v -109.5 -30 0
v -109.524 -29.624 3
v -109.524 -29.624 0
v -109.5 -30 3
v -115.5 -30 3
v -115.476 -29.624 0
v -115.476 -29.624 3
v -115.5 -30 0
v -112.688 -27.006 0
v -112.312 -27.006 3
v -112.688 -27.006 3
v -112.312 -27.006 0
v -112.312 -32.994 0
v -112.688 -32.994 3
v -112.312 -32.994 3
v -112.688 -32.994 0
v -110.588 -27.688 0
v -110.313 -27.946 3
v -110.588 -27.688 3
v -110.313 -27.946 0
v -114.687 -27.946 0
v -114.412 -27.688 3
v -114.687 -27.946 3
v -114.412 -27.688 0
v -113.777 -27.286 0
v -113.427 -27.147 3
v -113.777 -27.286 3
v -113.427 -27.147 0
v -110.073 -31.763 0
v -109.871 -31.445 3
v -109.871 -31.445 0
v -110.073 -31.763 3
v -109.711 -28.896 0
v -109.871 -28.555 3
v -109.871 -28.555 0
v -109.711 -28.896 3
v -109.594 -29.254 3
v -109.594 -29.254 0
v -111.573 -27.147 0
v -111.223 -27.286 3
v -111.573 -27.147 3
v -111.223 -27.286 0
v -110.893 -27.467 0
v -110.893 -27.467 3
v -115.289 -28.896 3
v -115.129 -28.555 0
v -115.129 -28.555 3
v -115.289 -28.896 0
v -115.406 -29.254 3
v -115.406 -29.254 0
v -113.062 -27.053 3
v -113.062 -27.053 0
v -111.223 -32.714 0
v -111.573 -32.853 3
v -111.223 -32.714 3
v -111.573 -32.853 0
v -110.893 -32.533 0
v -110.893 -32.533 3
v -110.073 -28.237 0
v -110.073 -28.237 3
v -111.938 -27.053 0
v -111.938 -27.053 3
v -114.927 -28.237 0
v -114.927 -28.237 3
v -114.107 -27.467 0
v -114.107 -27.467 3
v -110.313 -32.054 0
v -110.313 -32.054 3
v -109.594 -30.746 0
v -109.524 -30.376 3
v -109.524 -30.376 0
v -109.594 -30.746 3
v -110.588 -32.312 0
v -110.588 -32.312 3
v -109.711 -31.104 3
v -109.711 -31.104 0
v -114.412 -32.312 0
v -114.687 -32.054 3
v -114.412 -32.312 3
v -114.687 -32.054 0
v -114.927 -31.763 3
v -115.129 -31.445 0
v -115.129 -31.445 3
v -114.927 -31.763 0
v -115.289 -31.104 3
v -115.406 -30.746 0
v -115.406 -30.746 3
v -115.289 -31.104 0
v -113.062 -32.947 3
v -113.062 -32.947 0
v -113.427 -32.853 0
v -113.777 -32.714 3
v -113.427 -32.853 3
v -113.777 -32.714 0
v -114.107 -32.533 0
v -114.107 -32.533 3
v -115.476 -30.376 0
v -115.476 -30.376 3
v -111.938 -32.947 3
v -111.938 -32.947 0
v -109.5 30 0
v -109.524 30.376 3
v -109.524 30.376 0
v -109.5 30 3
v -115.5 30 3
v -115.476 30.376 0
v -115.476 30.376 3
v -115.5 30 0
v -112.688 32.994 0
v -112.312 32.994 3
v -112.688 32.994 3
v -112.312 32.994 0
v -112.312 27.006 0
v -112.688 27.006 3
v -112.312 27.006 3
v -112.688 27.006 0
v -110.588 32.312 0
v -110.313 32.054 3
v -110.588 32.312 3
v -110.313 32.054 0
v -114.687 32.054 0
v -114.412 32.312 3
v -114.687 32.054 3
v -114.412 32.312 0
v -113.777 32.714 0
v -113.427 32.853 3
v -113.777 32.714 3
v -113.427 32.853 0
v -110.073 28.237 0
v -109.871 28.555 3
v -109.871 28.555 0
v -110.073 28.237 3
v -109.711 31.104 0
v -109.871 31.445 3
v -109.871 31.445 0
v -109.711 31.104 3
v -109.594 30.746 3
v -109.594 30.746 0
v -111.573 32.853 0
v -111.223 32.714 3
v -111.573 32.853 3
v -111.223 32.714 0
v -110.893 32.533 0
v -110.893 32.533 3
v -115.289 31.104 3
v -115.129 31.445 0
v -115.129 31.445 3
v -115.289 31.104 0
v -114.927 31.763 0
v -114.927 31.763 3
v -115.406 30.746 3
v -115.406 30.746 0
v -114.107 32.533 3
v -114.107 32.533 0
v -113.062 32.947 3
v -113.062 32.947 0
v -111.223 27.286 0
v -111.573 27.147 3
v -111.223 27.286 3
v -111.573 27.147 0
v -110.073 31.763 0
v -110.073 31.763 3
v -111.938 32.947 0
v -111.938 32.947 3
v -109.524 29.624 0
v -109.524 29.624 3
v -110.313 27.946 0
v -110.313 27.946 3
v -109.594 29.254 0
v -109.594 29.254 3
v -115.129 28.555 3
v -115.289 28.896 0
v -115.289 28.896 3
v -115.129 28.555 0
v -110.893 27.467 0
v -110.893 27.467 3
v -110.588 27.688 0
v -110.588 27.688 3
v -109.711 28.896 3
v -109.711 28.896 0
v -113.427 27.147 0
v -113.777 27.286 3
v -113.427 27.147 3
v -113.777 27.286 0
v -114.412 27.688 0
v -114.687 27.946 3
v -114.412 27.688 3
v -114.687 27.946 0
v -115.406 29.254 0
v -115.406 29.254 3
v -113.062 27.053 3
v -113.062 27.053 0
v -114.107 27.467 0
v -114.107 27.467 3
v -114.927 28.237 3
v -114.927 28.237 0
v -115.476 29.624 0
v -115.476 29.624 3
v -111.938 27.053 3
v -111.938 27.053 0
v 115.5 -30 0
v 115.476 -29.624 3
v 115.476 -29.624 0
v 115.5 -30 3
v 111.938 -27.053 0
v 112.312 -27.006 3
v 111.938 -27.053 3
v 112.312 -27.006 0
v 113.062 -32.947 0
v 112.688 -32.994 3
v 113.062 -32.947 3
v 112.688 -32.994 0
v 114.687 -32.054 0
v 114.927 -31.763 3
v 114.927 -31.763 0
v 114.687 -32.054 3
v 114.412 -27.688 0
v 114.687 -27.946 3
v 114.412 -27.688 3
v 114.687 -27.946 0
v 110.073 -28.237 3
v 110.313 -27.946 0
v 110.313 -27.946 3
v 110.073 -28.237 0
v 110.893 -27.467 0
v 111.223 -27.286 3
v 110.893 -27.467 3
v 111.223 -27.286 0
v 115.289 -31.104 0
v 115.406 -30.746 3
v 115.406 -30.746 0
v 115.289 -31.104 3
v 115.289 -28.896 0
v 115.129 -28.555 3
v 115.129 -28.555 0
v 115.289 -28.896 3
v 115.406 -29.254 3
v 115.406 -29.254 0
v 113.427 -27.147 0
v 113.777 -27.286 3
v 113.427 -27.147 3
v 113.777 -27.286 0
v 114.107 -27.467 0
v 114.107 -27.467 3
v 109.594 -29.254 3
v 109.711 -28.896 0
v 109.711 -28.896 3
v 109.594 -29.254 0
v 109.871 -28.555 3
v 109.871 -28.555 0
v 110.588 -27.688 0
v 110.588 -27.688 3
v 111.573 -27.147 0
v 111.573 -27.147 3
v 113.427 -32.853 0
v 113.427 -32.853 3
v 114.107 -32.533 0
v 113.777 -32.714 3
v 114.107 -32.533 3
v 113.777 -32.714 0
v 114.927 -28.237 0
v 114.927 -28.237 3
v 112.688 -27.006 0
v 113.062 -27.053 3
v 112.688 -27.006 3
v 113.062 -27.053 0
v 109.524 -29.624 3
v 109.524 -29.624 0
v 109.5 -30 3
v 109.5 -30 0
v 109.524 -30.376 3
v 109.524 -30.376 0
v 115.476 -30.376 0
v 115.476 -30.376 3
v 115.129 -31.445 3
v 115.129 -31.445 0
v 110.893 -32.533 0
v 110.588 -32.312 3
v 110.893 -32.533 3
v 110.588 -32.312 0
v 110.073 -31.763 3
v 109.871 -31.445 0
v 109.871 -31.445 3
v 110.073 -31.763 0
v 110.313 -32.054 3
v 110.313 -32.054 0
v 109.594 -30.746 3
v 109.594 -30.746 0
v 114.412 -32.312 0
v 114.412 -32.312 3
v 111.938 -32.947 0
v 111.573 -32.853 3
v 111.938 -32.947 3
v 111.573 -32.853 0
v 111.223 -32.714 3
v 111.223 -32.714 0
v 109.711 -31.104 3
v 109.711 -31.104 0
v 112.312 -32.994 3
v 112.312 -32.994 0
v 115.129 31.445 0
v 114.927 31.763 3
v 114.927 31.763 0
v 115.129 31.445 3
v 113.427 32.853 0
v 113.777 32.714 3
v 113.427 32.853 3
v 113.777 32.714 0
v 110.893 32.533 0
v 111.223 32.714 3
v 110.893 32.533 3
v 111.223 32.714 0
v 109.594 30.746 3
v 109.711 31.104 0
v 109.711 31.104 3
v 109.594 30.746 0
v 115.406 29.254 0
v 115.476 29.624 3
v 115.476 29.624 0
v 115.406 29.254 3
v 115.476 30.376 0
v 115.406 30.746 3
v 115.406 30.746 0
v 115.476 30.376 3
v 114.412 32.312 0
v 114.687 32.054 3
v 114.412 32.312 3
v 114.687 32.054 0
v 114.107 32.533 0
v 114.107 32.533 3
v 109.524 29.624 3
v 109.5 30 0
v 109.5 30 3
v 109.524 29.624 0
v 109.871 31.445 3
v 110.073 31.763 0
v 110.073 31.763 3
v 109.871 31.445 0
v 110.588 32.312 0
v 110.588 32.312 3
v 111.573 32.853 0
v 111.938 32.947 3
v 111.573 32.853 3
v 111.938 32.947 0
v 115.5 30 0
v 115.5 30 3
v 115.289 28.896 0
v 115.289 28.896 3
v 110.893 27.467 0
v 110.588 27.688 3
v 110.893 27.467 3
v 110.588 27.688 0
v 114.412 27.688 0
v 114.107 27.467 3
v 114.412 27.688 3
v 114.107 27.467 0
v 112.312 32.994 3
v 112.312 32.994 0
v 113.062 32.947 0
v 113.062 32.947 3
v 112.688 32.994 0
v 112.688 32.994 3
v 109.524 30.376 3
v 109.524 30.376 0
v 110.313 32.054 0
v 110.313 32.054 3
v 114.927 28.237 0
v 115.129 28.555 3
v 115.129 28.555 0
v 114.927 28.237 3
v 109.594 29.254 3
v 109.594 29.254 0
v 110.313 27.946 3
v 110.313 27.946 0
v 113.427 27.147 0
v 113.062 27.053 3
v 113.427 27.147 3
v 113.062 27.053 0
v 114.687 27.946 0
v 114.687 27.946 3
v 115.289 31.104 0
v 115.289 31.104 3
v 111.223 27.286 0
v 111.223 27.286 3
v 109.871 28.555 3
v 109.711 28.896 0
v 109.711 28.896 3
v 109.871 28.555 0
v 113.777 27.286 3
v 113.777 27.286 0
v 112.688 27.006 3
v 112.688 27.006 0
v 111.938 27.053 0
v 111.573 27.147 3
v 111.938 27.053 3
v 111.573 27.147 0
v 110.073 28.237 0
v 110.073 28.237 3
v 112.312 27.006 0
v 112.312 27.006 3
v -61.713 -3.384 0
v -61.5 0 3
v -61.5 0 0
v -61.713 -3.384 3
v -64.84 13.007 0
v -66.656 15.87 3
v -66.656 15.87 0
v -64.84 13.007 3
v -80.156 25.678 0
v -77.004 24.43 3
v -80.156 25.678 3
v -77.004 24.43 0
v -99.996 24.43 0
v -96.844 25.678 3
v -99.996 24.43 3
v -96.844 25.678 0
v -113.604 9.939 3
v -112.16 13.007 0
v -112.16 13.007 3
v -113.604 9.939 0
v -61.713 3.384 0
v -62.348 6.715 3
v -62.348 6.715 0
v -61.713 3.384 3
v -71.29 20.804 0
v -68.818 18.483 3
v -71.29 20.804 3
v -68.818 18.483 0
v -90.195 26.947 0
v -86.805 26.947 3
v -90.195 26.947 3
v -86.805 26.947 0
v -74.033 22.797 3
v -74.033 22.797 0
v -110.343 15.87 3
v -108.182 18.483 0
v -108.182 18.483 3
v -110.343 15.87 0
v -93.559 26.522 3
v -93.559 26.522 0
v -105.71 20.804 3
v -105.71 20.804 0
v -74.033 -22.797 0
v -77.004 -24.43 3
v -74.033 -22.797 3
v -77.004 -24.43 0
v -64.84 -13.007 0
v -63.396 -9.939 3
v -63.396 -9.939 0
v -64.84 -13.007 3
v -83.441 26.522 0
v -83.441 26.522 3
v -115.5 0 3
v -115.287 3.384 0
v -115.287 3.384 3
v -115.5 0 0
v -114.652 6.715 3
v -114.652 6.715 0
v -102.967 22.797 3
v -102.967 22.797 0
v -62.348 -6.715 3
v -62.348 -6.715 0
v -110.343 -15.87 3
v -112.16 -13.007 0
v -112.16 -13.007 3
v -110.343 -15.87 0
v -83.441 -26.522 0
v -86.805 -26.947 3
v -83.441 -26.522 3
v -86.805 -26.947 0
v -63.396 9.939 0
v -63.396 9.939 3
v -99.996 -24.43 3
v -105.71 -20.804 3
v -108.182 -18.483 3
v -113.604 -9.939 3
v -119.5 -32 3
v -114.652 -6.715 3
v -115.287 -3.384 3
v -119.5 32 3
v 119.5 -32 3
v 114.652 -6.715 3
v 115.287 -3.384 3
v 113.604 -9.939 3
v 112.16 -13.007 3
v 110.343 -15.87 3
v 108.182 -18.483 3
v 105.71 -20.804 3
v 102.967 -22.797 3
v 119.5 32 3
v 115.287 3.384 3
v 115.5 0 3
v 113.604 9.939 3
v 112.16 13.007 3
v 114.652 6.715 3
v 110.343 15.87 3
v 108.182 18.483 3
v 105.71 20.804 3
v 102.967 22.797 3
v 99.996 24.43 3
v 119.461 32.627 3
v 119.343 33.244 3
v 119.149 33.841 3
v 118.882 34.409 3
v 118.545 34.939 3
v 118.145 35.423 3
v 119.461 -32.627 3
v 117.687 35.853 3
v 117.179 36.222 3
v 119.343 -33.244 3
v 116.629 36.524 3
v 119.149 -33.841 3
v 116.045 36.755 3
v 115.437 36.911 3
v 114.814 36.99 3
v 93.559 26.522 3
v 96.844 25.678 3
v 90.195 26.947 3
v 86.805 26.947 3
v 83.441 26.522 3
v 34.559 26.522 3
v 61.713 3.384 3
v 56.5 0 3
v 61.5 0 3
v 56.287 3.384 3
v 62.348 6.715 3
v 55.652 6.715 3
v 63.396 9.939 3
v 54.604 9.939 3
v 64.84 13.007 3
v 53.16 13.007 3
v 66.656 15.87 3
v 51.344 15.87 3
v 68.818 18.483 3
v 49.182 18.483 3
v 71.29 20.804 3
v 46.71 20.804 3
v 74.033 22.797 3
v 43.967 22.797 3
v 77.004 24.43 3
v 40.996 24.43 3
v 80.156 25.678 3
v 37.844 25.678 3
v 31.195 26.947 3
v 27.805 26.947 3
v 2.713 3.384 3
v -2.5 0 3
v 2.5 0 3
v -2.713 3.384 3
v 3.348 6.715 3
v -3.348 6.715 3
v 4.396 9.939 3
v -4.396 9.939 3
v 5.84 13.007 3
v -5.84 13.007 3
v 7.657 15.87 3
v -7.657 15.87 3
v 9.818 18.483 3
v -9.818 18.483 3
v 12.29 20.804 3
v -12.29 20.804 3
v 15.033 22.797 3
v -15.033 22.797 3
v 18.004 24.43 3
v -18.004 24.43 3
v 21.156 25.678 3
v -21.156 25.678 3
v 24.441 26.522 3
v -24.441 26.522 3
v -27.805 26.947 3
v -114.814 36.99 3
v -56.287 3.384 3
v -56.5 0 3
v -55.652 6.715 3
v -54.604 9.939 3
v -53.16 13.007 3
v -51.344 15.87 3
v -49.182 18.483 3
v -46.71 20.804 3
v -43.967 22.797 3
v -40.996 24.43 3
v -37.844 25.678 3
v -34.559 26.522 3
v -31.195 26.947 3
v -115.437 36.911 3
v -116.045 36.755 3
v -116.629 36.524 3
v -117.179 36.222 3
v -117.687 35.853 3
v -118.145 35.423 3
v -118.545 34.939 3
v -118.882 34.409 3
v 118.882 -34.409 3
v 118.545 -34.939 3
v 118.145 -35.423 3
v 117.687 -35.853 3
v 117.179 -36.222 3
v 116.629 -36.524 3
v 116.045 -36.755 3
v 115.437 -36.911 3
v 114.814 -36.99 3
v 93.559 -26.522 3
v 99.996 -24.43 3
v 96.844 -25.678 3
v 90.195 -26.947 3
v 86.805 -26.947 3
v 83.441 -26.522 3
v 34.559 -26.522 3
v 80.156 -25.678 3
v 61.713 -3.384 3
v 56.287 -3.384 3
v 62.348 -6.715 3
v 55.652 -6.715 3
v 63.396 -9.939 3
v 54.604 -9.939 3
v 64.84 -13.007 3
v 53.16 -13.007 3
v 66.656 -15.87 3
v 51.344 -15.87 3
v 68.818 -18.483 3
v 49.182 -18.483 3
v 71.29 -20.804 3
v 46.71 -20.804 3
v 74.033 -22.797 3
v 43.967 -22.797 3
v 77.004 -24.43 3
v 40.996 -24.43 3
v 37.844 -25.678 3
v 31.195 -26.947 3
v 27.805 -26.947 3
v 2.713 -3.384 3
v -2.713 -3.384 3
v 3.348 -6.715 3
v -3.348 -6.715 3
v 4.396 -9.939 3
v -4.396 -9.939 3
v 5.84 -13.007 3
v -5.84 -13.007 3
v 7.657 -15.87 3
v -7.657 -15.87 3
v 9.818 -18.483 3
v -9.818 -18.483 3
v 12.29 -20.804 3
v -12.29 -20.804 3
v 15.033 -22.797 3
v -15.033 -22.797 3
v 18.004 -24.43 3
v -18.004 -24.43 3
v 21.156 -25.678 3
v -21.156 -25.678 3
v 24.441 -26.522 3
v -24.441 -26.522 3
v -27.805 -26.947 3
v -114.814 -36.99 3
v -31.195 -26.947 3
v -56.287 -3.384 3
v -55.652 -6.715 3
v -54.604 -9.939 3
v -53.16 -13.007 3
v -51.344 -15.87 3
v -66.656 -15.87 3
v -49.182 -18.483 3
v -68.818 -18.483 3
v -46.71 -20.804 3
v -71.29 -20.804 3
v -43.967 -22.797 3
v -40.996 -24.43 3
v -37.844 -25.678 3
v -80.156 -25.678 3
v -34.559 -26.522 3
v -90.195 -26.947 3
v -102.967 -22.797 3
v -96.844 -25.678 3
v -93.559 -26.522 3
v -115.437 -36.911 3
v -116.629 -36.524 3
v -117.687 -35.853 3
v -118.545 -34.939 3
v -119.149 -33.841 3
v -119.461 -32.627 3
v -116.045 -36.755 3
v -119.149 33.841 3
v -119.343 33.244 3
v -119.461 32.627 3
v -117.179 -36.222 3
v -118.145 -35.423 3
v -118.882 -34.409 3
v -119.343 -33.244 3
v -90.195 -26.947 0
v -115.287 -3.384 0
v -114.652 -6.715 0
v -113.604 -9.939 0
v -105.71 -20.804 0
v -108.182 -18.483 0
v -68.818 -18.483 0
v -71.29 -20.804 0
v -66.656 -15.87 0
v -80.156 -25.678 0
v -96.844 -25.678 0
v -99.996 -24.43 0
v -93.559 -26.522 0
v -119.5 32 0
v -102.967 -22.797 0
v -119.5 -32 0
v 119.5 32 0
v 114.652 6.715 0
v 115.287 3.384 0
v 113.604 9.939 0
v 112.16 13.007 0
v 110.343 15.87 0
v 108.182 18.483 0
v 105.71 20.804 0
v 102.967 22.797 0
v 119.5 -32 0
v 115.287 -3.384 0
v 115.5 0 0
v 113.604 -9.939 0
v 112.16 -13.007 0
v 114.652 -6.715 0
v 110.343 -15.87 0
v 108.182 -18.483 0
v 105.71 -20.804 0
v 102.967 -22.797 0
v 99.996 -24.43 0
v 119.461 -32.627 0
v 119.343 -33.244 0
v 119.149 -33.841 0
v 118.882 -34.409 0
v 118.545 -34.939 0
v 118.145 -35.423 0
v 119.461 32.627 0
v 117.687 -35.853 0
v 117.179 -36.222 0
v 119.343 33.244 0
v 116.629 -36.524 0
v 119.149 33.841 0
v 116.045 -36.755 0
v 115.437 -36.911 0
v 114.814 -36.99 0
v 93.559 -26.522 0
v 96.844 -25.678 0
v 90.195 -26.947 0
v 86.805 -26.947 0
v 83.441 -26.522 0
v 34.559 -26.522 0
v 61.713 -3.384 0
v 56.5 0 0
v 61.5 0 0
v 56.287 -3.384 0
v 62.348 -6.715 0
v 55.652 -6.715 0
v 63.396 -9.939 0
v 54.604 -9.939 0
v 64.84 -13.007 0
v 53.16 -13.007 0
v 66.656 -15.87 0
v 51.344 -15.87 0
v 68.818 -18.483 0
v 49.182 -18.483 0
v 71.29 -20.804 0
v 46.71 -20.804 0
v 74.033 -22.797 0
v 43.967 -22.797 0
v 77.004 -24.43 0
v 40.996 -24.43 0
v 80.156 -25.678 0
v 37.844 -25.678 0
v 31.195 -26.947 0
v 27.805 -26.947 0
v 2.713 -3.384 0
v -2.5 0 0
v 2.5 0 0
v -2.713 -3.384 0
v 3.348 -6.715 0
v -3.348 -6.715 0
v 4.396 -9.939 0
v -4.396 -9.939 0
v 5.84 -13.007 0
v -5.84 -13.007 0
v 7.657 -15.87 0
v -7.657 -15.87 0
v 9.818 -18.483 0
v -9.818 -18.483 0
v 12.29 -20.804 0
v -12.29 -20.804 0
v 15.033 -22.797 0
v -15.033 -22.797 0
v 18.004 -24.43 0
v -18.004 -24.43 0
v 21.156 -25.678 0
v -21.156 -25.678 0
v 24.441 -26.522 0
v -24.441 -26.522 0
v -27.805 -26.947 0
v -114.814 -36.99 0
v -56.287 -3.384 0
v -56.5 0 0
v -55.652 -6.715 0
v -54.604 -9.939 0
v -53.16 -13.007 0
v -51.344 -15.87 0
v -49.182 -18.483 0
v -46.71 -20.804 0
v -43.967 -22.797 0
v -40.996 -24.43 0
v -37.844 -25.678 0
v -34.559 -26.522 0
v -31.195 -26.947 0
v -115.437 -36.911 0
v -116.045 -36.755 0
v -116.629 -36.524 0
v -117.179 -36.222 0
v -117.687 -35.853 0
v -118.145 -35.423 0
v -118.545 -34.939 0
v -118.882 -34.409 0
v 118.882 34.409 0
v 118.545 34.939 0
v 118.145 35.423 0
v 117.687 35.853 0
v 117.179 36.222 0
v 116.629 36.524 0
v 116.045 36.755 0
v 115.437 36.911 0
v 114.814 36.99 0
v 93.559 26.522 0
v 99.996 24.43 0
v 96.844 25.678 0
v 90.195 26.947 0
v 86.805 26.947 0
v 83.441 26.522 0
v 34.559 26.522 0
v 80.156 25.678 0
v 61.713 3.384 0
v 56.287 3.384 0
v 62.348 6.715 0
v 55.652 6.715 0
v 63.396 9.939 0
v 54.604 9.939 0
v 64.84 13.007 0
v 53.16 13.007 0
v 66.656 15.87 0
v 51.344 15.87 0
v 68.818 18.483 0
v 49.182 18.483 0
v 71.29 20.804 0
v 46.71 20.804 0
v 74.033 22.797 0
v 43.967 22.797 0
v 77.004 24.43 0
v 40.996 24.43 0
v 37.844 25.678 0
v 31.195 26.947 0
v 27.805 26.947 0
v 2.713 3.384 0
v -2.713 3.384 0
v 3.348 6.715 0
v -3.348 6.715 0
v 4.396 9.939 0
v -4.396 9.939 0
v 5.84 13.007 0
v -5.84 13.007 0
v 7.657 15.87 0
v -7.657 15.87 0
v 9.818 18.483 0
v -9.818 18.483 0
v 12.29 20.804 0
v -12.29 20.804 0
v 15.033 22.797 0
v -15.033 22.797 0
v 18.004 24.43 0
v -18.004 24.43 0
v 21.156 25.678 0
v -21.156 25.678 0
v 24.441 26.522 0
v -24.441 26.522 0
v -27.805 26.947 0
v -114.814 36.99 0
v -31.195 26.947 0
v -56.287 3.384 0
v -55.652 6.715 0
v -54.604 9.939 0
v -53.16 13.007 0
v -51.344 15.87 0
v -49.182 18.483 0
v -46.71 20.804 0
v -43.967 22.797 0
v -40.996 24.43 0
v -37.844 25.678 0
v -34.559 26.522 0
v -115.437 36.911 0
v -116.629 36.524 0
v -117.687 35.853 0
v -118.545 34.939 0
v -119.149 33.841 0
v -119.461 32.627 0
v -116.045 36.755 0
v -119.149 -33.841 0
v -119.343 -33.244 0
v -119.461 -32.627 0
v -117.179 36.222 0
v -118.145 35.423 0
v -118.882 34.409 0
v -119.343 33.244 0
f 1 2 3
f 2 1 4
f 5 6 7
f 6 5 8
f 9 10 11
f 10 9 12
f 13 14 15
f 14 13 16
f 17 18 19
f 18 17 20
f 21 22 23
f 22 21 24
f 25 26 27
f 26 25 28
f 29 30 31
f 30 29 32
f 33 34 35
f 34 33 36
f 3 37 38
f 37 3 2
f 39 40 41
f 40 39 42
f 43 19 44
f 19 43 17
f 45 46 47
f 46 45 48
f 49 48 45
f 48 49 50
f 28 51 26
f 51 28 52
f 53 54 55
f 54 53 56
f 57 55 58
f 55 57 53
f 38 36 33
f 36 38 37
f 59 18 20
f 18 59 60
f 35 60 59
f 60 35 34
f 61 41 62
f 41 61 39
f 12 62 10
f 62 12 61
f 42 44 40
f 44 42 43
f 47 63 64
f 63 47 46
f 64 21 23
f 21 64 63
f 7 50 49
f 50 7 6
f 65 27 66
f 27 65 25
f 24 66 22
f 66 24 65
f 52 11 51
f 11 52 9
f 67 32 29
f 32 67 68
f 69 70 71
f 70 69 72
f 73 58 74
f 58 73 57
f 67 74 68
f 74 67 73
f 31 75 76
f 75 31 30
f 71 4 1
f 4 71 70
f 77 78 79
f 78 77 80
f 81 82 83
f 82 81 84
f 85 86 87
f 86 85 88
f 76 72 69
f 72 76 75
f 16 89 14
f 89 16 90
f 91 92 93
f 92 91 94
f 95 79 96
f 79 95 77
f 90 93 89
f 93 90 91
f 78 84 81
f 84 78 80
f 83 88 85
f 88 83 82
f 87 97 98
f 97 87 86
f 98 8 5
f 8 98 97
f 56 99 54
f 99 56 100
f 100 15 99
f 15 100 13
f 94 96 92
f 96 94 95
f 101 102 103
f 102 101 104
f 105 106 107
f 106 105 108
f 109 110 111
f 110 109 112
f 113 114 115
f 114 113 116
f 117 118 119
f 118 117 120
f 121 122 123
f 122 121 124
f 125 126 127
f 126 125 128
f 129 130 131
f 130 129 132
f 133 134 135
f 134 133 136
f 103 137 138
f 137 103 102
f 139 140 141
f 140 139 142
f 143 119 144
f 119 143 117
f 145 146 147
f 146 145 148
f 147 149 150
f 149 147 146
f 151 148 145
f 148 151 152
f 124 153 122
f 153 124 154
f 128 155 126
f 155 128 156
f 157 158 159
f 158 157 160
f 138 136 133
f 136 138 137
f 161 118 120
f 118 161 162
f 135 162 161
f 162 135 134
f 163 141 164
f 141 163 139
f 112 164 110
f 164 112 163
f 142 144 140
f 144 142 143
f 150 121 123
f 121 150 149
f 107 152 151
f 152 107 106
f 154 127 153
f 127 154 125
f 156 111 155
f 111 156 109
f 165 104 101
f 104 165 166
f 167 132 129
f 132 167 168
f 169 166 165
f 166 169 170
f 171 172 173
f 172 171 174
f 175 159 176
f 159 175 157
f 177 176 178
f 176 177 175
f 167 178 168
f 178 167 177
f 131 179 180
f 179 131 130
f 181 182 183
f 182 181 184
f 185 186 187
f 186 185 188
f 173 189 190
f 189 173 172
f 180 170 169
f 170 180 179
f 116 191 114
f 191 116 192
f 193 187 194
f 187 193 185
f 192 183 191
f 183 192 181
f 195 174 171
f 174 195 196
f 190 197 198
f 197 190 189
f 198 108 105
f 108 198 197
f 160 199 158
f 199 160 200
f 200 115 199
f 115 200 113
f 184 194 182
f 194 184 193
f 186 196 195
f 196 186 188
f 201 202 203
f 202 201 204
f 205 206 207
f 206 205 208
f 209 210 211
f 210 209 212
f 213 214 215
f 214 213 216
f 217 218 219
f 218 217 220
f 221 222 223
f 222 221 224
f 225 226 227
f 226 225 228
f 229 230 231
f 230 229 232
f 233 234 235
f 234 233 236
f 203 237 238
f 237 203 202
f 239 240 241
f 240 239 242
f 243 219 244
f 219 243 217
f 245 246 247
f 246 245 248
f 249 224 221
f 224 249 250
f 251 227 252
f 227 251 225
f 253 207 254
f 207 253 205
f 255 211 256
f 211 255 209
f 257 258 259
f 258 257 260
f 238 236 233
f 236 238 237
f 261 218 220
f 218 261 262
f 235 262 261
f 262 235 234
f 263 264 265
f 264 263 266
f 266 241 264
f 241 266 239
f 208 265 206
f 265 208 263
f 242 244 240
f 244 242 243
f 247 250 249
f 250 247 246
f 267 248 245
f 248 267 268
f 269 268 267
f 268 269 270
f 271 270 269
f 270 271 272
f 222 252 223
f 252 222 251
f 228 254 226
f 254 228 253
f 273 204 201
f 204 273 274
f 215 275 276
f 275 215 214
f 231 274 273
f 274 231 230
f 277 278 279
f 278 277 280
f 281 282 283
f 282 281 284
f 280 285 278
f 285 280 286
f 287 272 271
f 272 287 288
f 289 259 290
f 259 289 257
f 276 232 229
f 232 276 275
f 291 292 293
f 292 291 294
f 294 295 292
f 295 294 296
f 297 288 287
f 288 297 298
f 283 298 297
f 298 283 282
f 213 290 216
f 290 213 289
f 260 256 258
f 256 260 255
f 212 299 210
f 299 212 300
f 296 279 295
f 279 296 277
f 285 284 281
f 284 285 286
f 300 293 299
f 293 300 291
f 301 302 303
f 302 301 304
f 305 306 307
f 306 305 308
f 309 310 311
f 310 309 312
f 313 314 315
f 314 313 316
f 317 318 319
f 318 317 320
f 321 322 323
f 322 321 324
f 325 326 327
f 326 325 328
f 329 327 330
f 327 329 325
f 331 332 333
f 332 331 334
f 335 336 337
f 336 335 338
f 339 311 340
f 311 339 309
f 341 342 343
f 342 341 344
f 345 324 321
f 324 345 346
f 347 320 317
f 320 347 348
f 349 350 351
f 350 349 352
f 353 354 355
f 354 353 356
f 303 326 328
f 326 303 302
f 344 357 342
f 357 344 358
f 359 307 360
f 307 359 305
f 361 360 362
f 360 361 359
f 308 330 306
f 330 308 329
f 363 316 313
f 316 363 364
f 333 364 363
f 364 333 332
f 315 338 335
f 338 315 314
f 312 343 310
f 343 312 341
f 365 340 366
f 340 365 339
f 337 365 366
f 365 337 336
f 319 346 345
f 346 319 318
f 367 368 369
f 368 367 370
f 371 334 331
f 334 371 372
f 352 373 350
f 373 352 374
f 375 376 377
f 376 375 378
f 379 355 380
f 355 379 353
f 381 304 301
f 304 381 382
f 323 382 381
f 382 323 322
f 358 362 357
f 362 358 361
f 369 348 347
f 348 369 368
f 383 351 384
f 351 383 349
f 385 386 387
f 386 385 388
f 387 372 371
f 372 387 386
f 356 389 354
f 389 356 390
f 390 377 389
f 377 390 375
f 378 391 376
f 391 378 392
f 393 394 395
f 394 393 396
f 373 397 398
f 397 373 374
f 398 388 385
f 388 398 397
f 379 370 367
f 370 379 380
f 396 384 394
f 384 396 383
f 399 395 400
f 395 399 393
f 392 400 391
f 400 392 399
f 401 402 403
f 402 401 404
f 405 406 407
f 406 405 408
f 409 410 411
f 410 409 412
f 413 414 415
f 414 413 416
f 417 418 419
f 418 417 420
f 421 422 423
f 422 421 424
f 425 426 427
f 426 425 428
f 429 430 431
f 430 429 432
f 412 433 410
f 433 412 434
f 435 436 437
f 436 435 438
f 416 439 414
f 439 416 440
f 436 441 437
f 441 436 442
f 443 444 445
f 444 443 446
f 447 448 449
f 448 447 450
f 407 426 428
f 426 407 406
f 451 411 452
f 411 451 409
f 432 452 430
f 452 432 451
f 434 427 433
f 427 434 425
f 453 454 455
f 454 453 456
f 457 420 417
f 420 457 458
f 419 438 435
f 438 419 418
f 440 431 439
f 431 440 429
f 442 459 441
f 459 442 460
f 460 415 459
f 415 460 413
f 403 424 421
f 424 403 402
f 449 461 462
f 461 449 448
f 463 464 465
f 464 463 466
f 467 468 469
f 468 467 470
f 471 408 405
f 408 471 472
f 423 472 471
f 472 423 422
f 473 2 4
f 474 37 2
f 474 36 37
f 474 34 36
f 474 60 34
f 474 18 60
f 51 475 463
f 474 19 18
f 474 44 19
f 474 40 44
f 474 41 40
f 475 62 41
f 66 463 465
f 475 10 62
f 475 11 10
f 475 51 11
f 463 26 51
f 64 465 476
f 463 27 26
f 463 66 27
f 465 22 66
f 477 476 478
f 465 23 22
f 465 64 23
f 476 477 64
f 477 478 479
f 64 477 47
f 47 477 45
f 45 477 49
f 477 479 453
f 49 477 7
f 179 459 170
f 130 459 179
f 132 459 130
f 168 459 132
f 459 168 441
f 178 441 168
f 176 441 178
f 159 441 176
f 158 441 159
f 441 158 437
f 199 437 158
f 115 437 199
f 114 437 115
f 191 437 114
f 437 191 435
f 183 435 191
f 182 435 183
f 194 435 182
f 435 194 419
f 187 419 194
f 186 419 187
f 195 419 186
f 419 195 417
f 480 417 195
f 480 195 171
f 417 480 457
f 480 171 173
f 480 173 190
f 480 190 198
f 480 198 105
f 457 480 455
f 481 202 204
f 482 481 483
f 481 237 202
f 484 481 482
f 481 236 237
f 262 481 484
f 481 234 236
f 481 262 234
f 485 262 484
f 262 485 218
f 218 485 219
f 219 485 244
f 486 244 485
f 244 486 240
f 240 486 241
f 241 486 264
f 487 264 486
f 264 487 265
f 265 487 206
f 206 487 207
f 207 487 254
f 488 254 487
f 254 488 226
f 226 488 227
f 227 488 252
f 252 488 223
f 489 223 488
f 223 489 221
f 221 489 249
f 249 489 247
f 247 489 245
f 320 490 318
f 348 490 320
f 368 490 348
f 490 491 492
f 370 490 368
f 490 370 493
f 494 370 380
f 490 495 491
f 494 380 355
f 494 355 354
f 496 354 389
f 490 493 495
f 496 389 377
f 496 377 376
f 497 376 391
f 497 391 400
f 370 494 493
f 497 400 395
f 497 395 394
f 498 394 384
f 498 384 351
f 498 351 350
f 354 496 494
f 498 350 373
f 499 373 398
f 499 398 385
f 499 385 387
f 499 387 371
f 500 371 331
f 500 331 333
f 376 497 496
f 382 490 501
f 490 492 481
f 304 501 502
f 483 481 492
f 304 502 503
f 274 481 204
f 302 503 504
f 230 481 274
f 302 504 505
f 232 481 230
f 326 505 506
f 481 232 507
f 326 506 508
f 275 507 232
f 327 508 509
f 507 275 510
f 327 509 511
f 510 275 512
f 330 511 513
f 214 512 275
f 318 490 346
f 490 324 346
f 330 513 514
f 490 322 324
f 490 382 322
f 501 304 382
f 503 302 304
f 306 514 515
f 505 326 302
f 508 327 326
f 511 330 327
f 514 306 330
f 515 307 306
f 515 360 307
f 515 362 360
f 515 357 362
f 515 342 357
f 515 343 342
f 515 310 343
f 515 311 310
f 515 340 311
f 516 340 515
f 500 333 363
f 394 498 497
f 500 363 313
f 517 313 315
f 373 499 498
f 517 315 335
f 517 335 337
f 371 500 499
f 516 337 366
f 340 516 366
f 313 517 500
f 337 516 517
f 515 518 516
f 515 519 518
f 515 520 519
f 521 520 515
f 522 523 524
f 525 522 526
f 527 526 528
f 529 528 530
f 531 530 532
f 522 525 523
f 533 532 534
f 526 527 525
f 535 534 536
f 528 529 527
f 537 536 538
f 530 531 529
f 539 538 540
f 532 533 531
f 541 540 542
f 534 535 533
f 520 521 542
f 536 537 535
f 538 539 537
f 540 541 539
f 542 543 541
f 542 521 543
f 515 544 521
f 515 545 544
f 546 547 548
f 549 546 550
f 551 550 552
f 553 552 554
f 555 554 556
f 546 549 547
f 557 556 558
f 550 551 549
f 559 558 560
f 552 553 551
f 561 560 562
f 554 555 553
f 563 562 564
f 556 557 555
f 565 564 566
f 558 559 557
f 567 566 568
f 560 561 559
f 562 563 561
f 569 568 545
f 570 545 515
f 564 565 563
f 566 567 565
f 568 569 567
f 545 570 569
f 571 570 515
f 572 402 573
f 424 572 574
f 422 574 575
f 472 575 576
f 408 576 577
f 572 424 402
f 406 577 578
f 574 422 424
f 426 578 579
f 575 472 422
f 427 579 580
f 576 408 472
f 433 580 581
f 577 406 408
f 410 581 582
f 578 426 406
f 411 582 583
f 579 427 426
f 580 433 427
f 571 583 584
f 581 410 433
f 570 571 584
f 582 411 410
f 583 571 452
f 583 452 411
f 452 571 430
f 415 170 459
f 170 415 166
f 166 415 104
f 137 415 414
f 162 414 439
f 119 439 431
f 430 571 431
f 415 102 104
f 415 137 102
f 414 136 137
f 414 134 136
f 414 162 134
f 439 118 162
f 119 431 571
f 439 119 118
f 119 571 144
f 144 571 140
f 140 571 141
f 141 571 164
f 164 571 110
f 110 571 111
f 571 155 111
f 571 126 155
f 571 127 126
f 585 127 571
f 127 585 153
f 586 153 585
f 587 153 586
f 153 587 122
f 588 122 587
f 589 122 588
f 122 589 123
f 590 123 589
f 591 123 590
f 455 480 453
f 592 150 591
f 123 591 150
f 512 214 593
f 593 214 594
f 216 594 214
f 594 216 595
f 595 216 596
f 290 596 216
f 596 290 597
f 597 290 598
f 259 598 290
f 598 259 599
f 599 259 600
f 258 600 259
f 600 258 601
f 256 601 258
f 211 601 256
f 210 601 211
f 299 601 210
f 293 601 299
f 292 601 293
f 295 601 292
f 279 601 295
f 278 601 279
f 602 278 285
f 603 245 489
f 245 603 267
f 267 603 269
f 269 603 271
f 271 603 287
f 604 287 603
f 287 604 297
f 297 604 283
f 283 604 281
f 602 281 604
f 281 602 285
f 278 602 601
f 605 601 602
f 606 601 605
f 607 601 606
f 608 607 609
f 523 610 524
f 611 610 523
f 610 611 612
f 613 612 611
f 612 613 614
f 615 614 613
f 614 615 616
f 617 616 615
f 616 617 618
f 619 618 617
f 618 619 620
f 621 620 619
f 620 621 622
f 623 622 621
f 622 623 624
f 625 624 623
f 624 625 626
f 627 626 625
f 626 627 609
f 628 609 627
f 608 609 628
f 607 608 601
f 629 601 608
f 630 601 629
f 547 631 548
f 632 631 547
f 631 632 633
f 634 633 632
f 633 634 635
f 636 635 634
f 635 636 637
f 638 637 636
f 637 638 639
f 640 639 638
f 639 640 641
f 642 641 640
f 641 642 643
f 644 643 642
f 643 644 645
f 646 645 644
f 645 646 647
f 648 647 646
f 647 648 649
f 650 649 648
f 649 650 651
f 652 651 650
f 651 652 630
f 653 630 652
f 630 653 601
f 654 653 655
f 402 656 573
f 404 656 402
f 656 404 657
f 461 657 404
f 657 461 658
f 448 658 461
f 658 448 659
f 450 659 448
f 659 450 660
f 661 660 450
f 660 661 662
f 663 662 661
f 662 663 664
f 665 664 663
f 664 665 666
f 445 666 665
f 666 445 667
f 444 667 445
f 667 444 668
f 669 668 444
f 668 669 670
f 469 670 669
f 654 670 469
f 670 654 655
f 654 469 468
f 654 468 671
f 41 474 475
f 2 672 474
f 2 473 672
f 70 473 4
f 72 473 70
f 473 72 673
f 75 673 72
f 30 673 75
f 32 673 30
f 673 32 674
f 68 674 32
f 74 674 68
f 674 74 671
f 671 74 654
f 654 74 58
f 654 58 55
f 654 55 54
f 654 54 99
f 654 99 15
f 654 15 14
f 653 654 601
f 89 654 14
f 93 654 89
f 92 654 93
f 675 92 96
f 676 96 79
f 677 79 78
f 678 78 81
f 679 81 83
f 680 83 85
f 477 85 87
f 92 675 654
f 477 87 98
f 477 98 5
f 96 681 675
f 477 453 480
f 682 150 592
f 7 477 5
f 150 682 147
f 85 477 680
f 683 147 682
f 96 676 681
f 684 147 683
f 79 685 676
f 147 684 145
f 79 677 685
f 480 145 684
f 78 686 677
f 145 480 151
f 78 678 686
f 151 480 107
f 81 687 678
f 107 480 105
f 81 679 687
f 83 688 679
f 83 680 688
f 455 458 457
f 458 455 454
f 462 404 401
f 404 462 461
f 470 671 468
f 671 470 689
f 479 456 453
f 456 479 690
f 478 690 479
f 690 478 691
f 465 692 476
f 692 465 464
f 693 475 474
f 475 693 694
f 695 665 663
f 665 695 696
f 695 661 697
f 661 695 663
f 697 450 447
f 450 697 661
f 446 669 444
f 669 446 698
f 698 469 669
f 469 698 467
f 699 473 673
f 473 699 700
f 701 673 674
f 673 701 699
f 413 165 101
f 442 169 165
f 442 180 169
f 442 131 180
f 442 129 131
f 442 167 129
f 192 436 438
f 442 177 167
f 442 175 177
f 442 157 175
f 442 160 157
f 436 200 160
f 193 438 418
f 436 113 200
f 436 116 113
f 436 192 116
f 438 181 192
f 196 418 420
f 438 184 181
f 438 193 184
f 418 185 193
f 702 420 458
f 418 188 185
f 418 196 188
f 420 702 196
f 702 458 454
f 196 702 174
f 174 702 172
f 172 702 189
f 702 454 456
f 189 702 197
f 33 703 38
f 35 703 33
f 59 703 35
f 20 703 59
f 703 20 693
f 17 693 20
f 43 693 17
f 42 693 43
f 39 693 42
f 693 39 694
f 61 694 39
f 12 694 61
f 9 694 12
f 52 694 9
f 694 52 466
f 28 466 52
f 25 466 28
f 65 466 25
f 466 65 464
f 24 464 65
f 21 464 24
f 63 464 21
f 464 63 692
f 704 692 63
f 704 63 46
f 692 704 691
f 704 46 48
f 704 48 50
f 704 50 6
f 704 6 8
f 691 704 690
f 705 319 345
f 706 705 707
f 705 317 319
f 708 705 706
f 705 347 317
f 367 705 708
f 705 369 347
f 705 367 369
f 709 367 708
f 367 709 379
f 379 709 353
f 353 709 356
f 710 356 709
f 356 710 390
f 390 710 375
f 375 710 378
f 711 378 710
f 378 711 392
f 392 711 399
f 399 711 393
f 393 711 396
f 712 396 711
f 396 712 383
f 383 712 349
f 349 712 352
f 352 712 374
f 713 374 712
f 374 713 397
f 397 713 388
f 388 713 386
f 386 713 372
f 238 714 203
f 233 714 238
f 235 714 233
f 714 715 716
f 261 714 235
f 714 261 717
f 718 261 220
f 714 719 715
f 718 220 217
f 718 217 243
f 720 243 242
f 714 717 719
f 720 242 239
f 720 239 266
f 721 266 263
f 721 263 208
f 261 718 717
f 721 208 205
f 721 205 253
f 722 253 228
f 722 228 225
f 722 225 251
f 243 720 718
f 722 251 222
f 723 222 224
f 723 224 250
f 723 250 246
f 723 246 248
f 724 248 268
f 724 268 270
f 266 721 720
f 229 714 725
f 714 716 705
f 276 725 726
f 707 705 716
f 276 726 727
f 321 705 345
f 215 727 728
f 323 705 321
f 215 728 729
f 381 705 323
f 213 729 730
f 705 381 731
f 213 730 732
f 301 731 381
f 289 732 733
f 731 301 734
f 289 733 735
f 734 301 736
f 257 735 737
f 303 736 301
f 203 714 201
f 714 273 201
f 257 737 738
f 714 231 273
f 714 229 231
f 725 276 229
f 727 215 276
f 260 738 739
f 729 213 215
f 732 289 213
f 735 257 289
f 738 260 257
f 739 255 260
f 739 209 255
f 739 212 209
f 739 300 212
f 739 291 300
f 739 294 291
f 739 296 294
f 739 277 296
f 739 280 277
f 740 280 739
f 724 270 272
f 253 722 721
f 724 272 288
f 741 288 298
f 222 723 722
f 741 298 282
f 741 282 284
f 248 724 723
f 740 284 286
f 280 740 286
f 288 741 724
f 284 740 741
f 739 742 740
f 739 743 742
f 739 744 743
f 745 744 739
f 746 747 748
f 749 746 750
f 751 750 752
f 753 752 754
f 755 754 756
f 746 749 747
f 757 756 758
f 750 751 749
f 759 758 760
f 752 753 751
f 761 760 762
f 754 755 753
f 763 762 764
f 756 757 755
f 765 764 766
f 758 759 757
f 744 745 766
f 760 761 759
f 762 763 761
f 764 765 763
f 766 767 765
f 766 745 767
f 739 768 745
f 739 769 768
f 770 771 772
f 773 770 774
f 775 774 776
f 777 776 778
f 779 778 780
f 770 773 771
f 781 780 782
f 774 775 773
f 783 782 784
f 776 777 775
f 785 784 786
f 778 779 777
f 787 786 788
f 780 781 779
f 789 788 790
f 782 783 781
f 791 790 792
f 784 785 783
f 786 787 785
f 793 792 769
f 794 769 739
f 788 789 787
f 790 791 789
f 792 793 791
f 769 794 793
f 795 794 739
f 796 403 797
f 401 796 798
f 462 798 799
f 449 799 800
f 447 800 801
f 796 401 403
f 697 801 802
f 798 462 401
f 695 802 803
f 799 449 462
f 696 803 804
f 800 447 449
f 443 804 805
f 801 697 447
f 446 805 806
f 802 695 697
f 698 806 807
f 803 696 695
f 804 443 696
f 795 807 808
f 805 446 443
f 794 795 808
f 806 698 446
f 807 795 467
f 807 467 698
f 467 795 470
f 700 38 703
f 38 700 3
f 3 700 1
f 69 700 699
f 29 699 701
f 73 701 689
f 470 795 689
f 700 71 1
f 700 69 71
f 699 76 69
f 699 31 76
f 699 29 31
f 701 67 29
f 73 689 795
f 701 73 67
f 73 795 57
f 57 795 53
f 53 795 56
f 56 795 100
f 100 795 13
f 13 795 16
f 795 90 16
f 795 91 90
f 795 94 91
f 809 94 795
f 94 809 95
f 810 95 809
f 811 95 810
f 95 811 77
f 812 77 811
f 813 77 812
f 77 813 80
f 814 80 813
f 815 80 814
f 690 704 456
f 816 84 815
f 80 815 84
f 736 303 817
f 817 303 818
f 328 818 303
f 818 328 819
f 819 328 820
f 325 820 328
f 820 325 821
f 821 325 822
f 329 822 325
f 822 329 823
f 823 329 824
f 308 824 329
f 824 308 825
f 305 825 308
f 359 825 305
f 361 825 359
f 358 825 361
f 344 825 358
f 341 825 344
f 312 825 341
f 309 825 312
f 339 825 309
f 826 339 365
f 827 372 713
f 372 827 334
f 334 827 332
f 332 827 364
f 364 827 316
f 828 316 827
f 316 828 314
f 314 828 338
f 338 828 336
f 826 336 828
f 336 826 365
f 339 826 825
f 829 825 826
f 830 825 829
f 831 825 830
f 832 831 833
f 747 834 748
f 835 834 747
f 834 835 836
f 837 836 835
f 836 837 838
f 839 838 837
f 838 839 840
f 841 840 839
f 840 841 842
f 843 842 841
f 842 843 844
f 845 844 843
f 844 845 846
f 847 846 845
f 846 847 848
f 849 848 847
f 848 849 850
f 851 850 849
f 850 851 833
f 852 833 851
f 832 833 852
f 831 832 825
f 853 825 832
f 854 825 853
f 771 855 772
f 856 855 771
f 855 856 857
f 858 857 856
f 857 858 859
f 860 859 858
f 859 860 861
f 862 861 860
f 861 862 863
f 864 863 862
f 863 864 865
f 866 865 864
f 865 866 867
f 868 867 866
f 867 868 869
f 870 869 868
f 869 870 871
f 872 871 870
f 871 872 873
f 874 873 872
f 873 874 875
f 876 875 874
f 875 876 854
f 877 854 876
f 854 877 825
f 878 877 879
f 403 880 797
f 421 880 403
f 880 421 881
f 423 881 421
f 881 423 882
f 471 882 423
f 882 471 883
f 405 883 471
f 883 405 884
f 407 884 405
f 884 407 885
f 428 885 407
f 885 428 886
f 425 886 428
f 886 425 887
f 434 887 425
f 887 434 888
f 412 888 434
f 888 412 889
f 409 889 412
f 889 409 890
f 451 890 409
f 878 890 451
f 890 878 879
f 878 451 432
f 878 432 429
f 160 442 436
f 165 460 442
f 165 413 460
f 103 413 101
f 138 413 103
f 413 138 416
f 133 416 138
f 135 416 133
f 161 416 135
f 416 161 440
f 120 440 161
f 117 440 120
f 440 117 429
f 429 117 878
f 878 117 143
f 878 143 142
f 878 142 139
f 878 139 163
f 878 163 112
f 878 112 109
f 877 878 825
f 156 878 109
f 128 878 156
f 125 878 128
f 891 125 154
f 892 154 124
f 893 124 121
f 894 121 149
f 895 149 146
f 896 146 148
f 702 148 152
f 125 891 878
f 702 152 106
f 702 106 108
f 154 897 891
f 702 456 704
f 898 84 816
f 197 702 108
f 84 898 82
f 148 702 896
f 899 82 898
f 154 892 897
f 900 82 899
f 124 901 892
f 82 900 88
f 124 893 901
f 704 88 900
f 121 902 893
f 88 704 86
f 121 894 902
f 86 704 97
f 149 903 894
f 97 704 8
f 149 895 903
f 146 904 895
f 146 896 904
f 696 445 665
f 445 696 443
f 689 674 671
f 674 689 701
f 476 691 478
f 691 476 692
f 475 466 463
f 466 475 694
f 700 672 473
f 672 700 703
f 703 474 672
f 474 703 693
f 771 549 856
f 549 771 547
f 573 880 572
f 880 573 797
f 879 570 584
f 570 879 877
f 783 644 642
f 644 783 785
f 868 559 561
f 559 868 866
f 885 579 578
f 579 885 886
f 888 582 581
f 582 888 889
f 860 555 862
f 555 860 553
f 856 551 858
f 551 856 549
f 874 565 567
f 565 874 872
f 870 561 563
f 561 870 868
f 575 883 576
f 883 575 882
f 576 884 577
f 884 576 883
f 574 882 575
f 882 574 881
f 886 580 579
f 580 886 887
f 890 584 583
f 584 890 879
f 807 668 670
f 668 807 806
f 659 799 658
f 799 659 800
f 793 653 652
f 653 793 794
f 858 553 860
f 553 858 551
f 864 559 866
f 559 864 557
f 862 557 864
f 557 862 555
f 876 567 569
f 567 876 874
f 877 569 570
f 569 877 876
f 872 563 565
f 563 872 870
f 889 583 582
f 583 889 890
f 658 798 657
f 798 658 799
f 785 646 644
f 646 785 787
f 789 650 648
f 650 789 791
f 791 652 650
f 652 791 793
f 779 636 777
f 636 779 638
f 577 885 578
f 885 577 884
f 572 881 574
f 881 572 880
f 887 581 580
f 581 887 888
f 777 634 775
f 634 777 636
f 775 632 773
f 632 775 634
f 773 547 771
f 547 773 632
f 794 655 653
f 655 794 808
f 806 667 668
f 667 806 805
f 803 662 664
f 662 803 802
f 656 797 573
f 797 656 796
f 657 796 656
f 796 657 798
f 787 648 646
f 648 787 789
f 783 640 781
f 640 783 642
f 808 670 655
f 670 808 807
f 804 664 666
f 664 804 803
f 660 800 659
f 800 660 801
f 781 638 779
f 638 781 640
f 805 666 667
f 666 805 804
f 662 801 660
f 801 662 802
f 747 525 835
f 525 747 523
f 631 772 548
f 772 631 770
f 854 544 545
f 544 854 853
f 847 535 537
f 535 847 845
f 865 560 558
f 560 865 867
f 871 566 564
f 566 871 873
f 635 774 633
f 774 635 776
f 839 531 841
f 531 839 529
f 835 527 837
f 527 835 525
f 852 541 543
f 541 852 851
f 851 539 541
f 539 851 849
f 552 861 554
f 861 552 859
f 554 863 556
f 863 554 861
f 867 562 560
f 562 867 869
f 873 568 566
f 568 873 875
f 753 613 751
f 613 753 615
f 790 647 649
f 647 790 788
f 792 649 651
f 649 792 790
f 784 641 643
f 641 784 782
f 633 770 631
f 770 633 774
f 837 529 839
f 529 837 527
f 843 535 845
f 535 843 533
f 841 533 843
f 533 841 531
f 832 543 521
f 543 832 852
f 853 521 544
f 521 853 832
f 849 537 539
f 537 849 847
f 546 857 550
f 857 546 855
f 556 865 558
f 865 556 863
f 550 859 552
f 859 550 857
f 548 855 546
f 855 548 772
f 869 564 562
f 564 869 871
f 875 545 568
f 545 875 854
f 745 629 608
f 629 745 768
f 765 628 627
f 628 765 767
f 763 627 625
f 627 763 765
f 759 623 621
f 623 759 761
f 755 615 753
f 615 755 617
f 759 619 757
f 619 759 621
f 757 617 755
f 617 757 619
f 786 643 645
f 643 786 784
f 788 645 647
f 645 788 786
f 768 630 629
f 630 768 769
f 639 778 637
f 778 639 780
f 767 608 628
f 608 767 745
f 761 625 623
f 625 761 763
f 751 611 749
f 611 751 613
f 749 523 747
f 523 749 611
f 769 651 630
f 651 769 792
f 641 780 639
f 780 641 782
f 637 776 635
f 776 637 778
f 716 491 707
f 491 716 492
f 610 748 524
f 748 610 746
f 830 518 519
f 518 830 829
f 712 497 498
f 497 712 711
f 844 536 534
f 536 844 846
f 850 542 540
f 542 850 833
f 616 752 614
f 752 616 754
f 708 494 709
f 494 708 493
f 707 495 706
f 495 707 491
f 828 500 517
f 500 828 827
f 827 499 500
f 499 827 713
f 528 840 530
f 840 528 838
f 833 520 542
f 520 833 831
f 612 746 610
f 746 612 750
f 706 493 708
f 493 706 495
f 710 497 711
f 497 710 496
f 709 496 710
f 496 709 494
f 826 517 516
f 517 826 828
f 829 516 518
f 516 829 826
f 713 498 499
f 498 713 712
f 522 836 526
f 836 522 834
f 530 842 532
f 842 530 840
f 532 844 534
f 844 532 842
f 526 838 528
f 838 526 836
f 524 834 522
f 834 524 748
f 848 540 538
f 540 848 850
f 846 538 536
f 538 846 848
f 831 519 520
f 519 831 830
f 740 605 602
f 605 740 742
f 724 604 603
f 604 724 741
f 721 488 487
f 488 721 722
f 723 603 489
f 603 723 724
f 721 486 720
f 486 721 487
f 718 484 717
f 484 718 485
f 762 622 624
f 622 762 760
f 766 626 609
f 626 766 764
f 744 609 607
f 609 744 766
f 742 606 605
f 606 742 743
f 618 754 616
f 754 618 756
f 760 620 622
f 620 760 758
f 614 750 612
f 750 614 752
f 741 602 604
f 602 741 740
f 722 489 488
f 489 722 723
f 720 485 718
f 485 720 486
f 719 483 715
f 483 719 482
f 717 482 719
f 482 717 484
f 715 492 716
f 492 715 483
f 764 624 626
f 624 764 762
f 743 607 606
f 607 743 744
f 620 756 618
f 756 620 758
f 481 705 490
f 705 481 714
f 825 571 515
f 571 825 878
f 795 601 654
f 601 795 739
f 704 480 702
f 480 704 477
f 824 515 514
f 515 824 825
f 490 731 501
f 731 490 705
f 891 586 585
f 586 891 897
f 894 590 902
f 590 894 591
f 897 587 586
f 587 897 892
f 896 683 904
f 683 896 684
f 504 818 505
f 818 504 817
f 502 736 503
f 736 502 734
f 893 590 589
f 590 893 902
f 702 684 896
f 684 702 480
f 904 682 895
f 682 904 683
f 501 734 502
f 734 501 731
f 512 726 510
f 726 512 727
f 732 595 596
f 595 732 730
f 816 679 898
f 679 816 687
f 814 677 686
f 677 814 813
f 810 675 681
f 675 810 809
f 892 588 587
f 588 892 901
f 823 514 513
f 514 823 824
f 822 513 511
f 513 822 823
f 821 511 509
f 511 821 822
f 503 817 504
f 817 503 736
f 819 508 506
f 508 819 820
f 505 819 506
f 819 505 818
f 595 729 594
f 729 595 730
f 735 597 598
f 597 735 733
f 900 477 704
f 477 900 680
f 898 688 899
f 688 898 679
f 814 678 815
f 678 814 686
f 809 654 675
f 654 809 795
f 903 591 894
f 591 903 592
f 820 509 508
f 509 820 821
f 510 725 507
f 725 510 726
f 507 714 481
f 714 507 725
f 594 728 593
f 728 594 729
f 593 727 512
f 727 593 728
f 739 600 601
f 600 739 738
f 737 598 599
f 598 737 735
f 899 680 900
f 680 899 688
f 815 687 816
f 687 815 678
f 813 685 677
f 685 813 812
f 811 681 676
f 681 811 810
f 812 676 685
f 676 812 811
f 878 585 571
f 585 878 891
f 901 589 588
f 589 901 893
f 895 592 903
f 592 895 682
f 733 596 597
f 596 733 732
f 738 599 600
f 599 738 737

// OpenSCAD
$fn = 50;


difference() {
	union() {
		hull() {
			translate(v = [-114.5000000000, 32.0000000000, 0]) {
				cylinder(h = 3, r = 5);
			}
			translate(v = [114.5000000000, 32.0000000000, 0]) {
				cylinder(h = 3, r = 5);
			}
			translate(v = [-114.5000000000, -32.0000000000, 0]) {
				cylinder(h = 3, r = 5);
			}
			translate(v = [114.5000000000, -32.0000000000, 0]) {
				cylinder(h = 3, r = 5);
			}
		}
	}
	union() {
		#translate(v = [-112.5000000000, -30.0000000000, -100.0000000000]) {
			cylinder(h = 200, r = 3.0000000000);
		}
		#translate(v = [-112.5000000000, 30.0000000000, -100.0000000000]) {
			cylinder(h = 200, r = 3.0000000000);
		}
		#translate(v = [112.5000000000, -30.0000000000, -100.0000000000]) {
			cylinder(h = 200, r = 3.0000000000);
		}
		#translate(v = [112.5000000000, 30.0000000000, -100.0000000000]) {
			cylinder(h = 200, r = 3.0000000000);
		}
		#translate(v = [-88.5000000000, 0, 0]) {
			cylinder(h = 3, r = 27.0000000000);
		}
		#translate(v = [-29.5000000000, 0, 0]) {
			cylinder(h = 3, r = 27.0000000000);
		}
		#translate(v = [29.5000000000, 0, 0]) {
			cylinder(h = 3, r = 27.0000000000);
		}
		#translate(v = [88.5000000000, 0, 0]) {
			cylinder(h = 3, r = 27.0000000000);
		}
	}
}
